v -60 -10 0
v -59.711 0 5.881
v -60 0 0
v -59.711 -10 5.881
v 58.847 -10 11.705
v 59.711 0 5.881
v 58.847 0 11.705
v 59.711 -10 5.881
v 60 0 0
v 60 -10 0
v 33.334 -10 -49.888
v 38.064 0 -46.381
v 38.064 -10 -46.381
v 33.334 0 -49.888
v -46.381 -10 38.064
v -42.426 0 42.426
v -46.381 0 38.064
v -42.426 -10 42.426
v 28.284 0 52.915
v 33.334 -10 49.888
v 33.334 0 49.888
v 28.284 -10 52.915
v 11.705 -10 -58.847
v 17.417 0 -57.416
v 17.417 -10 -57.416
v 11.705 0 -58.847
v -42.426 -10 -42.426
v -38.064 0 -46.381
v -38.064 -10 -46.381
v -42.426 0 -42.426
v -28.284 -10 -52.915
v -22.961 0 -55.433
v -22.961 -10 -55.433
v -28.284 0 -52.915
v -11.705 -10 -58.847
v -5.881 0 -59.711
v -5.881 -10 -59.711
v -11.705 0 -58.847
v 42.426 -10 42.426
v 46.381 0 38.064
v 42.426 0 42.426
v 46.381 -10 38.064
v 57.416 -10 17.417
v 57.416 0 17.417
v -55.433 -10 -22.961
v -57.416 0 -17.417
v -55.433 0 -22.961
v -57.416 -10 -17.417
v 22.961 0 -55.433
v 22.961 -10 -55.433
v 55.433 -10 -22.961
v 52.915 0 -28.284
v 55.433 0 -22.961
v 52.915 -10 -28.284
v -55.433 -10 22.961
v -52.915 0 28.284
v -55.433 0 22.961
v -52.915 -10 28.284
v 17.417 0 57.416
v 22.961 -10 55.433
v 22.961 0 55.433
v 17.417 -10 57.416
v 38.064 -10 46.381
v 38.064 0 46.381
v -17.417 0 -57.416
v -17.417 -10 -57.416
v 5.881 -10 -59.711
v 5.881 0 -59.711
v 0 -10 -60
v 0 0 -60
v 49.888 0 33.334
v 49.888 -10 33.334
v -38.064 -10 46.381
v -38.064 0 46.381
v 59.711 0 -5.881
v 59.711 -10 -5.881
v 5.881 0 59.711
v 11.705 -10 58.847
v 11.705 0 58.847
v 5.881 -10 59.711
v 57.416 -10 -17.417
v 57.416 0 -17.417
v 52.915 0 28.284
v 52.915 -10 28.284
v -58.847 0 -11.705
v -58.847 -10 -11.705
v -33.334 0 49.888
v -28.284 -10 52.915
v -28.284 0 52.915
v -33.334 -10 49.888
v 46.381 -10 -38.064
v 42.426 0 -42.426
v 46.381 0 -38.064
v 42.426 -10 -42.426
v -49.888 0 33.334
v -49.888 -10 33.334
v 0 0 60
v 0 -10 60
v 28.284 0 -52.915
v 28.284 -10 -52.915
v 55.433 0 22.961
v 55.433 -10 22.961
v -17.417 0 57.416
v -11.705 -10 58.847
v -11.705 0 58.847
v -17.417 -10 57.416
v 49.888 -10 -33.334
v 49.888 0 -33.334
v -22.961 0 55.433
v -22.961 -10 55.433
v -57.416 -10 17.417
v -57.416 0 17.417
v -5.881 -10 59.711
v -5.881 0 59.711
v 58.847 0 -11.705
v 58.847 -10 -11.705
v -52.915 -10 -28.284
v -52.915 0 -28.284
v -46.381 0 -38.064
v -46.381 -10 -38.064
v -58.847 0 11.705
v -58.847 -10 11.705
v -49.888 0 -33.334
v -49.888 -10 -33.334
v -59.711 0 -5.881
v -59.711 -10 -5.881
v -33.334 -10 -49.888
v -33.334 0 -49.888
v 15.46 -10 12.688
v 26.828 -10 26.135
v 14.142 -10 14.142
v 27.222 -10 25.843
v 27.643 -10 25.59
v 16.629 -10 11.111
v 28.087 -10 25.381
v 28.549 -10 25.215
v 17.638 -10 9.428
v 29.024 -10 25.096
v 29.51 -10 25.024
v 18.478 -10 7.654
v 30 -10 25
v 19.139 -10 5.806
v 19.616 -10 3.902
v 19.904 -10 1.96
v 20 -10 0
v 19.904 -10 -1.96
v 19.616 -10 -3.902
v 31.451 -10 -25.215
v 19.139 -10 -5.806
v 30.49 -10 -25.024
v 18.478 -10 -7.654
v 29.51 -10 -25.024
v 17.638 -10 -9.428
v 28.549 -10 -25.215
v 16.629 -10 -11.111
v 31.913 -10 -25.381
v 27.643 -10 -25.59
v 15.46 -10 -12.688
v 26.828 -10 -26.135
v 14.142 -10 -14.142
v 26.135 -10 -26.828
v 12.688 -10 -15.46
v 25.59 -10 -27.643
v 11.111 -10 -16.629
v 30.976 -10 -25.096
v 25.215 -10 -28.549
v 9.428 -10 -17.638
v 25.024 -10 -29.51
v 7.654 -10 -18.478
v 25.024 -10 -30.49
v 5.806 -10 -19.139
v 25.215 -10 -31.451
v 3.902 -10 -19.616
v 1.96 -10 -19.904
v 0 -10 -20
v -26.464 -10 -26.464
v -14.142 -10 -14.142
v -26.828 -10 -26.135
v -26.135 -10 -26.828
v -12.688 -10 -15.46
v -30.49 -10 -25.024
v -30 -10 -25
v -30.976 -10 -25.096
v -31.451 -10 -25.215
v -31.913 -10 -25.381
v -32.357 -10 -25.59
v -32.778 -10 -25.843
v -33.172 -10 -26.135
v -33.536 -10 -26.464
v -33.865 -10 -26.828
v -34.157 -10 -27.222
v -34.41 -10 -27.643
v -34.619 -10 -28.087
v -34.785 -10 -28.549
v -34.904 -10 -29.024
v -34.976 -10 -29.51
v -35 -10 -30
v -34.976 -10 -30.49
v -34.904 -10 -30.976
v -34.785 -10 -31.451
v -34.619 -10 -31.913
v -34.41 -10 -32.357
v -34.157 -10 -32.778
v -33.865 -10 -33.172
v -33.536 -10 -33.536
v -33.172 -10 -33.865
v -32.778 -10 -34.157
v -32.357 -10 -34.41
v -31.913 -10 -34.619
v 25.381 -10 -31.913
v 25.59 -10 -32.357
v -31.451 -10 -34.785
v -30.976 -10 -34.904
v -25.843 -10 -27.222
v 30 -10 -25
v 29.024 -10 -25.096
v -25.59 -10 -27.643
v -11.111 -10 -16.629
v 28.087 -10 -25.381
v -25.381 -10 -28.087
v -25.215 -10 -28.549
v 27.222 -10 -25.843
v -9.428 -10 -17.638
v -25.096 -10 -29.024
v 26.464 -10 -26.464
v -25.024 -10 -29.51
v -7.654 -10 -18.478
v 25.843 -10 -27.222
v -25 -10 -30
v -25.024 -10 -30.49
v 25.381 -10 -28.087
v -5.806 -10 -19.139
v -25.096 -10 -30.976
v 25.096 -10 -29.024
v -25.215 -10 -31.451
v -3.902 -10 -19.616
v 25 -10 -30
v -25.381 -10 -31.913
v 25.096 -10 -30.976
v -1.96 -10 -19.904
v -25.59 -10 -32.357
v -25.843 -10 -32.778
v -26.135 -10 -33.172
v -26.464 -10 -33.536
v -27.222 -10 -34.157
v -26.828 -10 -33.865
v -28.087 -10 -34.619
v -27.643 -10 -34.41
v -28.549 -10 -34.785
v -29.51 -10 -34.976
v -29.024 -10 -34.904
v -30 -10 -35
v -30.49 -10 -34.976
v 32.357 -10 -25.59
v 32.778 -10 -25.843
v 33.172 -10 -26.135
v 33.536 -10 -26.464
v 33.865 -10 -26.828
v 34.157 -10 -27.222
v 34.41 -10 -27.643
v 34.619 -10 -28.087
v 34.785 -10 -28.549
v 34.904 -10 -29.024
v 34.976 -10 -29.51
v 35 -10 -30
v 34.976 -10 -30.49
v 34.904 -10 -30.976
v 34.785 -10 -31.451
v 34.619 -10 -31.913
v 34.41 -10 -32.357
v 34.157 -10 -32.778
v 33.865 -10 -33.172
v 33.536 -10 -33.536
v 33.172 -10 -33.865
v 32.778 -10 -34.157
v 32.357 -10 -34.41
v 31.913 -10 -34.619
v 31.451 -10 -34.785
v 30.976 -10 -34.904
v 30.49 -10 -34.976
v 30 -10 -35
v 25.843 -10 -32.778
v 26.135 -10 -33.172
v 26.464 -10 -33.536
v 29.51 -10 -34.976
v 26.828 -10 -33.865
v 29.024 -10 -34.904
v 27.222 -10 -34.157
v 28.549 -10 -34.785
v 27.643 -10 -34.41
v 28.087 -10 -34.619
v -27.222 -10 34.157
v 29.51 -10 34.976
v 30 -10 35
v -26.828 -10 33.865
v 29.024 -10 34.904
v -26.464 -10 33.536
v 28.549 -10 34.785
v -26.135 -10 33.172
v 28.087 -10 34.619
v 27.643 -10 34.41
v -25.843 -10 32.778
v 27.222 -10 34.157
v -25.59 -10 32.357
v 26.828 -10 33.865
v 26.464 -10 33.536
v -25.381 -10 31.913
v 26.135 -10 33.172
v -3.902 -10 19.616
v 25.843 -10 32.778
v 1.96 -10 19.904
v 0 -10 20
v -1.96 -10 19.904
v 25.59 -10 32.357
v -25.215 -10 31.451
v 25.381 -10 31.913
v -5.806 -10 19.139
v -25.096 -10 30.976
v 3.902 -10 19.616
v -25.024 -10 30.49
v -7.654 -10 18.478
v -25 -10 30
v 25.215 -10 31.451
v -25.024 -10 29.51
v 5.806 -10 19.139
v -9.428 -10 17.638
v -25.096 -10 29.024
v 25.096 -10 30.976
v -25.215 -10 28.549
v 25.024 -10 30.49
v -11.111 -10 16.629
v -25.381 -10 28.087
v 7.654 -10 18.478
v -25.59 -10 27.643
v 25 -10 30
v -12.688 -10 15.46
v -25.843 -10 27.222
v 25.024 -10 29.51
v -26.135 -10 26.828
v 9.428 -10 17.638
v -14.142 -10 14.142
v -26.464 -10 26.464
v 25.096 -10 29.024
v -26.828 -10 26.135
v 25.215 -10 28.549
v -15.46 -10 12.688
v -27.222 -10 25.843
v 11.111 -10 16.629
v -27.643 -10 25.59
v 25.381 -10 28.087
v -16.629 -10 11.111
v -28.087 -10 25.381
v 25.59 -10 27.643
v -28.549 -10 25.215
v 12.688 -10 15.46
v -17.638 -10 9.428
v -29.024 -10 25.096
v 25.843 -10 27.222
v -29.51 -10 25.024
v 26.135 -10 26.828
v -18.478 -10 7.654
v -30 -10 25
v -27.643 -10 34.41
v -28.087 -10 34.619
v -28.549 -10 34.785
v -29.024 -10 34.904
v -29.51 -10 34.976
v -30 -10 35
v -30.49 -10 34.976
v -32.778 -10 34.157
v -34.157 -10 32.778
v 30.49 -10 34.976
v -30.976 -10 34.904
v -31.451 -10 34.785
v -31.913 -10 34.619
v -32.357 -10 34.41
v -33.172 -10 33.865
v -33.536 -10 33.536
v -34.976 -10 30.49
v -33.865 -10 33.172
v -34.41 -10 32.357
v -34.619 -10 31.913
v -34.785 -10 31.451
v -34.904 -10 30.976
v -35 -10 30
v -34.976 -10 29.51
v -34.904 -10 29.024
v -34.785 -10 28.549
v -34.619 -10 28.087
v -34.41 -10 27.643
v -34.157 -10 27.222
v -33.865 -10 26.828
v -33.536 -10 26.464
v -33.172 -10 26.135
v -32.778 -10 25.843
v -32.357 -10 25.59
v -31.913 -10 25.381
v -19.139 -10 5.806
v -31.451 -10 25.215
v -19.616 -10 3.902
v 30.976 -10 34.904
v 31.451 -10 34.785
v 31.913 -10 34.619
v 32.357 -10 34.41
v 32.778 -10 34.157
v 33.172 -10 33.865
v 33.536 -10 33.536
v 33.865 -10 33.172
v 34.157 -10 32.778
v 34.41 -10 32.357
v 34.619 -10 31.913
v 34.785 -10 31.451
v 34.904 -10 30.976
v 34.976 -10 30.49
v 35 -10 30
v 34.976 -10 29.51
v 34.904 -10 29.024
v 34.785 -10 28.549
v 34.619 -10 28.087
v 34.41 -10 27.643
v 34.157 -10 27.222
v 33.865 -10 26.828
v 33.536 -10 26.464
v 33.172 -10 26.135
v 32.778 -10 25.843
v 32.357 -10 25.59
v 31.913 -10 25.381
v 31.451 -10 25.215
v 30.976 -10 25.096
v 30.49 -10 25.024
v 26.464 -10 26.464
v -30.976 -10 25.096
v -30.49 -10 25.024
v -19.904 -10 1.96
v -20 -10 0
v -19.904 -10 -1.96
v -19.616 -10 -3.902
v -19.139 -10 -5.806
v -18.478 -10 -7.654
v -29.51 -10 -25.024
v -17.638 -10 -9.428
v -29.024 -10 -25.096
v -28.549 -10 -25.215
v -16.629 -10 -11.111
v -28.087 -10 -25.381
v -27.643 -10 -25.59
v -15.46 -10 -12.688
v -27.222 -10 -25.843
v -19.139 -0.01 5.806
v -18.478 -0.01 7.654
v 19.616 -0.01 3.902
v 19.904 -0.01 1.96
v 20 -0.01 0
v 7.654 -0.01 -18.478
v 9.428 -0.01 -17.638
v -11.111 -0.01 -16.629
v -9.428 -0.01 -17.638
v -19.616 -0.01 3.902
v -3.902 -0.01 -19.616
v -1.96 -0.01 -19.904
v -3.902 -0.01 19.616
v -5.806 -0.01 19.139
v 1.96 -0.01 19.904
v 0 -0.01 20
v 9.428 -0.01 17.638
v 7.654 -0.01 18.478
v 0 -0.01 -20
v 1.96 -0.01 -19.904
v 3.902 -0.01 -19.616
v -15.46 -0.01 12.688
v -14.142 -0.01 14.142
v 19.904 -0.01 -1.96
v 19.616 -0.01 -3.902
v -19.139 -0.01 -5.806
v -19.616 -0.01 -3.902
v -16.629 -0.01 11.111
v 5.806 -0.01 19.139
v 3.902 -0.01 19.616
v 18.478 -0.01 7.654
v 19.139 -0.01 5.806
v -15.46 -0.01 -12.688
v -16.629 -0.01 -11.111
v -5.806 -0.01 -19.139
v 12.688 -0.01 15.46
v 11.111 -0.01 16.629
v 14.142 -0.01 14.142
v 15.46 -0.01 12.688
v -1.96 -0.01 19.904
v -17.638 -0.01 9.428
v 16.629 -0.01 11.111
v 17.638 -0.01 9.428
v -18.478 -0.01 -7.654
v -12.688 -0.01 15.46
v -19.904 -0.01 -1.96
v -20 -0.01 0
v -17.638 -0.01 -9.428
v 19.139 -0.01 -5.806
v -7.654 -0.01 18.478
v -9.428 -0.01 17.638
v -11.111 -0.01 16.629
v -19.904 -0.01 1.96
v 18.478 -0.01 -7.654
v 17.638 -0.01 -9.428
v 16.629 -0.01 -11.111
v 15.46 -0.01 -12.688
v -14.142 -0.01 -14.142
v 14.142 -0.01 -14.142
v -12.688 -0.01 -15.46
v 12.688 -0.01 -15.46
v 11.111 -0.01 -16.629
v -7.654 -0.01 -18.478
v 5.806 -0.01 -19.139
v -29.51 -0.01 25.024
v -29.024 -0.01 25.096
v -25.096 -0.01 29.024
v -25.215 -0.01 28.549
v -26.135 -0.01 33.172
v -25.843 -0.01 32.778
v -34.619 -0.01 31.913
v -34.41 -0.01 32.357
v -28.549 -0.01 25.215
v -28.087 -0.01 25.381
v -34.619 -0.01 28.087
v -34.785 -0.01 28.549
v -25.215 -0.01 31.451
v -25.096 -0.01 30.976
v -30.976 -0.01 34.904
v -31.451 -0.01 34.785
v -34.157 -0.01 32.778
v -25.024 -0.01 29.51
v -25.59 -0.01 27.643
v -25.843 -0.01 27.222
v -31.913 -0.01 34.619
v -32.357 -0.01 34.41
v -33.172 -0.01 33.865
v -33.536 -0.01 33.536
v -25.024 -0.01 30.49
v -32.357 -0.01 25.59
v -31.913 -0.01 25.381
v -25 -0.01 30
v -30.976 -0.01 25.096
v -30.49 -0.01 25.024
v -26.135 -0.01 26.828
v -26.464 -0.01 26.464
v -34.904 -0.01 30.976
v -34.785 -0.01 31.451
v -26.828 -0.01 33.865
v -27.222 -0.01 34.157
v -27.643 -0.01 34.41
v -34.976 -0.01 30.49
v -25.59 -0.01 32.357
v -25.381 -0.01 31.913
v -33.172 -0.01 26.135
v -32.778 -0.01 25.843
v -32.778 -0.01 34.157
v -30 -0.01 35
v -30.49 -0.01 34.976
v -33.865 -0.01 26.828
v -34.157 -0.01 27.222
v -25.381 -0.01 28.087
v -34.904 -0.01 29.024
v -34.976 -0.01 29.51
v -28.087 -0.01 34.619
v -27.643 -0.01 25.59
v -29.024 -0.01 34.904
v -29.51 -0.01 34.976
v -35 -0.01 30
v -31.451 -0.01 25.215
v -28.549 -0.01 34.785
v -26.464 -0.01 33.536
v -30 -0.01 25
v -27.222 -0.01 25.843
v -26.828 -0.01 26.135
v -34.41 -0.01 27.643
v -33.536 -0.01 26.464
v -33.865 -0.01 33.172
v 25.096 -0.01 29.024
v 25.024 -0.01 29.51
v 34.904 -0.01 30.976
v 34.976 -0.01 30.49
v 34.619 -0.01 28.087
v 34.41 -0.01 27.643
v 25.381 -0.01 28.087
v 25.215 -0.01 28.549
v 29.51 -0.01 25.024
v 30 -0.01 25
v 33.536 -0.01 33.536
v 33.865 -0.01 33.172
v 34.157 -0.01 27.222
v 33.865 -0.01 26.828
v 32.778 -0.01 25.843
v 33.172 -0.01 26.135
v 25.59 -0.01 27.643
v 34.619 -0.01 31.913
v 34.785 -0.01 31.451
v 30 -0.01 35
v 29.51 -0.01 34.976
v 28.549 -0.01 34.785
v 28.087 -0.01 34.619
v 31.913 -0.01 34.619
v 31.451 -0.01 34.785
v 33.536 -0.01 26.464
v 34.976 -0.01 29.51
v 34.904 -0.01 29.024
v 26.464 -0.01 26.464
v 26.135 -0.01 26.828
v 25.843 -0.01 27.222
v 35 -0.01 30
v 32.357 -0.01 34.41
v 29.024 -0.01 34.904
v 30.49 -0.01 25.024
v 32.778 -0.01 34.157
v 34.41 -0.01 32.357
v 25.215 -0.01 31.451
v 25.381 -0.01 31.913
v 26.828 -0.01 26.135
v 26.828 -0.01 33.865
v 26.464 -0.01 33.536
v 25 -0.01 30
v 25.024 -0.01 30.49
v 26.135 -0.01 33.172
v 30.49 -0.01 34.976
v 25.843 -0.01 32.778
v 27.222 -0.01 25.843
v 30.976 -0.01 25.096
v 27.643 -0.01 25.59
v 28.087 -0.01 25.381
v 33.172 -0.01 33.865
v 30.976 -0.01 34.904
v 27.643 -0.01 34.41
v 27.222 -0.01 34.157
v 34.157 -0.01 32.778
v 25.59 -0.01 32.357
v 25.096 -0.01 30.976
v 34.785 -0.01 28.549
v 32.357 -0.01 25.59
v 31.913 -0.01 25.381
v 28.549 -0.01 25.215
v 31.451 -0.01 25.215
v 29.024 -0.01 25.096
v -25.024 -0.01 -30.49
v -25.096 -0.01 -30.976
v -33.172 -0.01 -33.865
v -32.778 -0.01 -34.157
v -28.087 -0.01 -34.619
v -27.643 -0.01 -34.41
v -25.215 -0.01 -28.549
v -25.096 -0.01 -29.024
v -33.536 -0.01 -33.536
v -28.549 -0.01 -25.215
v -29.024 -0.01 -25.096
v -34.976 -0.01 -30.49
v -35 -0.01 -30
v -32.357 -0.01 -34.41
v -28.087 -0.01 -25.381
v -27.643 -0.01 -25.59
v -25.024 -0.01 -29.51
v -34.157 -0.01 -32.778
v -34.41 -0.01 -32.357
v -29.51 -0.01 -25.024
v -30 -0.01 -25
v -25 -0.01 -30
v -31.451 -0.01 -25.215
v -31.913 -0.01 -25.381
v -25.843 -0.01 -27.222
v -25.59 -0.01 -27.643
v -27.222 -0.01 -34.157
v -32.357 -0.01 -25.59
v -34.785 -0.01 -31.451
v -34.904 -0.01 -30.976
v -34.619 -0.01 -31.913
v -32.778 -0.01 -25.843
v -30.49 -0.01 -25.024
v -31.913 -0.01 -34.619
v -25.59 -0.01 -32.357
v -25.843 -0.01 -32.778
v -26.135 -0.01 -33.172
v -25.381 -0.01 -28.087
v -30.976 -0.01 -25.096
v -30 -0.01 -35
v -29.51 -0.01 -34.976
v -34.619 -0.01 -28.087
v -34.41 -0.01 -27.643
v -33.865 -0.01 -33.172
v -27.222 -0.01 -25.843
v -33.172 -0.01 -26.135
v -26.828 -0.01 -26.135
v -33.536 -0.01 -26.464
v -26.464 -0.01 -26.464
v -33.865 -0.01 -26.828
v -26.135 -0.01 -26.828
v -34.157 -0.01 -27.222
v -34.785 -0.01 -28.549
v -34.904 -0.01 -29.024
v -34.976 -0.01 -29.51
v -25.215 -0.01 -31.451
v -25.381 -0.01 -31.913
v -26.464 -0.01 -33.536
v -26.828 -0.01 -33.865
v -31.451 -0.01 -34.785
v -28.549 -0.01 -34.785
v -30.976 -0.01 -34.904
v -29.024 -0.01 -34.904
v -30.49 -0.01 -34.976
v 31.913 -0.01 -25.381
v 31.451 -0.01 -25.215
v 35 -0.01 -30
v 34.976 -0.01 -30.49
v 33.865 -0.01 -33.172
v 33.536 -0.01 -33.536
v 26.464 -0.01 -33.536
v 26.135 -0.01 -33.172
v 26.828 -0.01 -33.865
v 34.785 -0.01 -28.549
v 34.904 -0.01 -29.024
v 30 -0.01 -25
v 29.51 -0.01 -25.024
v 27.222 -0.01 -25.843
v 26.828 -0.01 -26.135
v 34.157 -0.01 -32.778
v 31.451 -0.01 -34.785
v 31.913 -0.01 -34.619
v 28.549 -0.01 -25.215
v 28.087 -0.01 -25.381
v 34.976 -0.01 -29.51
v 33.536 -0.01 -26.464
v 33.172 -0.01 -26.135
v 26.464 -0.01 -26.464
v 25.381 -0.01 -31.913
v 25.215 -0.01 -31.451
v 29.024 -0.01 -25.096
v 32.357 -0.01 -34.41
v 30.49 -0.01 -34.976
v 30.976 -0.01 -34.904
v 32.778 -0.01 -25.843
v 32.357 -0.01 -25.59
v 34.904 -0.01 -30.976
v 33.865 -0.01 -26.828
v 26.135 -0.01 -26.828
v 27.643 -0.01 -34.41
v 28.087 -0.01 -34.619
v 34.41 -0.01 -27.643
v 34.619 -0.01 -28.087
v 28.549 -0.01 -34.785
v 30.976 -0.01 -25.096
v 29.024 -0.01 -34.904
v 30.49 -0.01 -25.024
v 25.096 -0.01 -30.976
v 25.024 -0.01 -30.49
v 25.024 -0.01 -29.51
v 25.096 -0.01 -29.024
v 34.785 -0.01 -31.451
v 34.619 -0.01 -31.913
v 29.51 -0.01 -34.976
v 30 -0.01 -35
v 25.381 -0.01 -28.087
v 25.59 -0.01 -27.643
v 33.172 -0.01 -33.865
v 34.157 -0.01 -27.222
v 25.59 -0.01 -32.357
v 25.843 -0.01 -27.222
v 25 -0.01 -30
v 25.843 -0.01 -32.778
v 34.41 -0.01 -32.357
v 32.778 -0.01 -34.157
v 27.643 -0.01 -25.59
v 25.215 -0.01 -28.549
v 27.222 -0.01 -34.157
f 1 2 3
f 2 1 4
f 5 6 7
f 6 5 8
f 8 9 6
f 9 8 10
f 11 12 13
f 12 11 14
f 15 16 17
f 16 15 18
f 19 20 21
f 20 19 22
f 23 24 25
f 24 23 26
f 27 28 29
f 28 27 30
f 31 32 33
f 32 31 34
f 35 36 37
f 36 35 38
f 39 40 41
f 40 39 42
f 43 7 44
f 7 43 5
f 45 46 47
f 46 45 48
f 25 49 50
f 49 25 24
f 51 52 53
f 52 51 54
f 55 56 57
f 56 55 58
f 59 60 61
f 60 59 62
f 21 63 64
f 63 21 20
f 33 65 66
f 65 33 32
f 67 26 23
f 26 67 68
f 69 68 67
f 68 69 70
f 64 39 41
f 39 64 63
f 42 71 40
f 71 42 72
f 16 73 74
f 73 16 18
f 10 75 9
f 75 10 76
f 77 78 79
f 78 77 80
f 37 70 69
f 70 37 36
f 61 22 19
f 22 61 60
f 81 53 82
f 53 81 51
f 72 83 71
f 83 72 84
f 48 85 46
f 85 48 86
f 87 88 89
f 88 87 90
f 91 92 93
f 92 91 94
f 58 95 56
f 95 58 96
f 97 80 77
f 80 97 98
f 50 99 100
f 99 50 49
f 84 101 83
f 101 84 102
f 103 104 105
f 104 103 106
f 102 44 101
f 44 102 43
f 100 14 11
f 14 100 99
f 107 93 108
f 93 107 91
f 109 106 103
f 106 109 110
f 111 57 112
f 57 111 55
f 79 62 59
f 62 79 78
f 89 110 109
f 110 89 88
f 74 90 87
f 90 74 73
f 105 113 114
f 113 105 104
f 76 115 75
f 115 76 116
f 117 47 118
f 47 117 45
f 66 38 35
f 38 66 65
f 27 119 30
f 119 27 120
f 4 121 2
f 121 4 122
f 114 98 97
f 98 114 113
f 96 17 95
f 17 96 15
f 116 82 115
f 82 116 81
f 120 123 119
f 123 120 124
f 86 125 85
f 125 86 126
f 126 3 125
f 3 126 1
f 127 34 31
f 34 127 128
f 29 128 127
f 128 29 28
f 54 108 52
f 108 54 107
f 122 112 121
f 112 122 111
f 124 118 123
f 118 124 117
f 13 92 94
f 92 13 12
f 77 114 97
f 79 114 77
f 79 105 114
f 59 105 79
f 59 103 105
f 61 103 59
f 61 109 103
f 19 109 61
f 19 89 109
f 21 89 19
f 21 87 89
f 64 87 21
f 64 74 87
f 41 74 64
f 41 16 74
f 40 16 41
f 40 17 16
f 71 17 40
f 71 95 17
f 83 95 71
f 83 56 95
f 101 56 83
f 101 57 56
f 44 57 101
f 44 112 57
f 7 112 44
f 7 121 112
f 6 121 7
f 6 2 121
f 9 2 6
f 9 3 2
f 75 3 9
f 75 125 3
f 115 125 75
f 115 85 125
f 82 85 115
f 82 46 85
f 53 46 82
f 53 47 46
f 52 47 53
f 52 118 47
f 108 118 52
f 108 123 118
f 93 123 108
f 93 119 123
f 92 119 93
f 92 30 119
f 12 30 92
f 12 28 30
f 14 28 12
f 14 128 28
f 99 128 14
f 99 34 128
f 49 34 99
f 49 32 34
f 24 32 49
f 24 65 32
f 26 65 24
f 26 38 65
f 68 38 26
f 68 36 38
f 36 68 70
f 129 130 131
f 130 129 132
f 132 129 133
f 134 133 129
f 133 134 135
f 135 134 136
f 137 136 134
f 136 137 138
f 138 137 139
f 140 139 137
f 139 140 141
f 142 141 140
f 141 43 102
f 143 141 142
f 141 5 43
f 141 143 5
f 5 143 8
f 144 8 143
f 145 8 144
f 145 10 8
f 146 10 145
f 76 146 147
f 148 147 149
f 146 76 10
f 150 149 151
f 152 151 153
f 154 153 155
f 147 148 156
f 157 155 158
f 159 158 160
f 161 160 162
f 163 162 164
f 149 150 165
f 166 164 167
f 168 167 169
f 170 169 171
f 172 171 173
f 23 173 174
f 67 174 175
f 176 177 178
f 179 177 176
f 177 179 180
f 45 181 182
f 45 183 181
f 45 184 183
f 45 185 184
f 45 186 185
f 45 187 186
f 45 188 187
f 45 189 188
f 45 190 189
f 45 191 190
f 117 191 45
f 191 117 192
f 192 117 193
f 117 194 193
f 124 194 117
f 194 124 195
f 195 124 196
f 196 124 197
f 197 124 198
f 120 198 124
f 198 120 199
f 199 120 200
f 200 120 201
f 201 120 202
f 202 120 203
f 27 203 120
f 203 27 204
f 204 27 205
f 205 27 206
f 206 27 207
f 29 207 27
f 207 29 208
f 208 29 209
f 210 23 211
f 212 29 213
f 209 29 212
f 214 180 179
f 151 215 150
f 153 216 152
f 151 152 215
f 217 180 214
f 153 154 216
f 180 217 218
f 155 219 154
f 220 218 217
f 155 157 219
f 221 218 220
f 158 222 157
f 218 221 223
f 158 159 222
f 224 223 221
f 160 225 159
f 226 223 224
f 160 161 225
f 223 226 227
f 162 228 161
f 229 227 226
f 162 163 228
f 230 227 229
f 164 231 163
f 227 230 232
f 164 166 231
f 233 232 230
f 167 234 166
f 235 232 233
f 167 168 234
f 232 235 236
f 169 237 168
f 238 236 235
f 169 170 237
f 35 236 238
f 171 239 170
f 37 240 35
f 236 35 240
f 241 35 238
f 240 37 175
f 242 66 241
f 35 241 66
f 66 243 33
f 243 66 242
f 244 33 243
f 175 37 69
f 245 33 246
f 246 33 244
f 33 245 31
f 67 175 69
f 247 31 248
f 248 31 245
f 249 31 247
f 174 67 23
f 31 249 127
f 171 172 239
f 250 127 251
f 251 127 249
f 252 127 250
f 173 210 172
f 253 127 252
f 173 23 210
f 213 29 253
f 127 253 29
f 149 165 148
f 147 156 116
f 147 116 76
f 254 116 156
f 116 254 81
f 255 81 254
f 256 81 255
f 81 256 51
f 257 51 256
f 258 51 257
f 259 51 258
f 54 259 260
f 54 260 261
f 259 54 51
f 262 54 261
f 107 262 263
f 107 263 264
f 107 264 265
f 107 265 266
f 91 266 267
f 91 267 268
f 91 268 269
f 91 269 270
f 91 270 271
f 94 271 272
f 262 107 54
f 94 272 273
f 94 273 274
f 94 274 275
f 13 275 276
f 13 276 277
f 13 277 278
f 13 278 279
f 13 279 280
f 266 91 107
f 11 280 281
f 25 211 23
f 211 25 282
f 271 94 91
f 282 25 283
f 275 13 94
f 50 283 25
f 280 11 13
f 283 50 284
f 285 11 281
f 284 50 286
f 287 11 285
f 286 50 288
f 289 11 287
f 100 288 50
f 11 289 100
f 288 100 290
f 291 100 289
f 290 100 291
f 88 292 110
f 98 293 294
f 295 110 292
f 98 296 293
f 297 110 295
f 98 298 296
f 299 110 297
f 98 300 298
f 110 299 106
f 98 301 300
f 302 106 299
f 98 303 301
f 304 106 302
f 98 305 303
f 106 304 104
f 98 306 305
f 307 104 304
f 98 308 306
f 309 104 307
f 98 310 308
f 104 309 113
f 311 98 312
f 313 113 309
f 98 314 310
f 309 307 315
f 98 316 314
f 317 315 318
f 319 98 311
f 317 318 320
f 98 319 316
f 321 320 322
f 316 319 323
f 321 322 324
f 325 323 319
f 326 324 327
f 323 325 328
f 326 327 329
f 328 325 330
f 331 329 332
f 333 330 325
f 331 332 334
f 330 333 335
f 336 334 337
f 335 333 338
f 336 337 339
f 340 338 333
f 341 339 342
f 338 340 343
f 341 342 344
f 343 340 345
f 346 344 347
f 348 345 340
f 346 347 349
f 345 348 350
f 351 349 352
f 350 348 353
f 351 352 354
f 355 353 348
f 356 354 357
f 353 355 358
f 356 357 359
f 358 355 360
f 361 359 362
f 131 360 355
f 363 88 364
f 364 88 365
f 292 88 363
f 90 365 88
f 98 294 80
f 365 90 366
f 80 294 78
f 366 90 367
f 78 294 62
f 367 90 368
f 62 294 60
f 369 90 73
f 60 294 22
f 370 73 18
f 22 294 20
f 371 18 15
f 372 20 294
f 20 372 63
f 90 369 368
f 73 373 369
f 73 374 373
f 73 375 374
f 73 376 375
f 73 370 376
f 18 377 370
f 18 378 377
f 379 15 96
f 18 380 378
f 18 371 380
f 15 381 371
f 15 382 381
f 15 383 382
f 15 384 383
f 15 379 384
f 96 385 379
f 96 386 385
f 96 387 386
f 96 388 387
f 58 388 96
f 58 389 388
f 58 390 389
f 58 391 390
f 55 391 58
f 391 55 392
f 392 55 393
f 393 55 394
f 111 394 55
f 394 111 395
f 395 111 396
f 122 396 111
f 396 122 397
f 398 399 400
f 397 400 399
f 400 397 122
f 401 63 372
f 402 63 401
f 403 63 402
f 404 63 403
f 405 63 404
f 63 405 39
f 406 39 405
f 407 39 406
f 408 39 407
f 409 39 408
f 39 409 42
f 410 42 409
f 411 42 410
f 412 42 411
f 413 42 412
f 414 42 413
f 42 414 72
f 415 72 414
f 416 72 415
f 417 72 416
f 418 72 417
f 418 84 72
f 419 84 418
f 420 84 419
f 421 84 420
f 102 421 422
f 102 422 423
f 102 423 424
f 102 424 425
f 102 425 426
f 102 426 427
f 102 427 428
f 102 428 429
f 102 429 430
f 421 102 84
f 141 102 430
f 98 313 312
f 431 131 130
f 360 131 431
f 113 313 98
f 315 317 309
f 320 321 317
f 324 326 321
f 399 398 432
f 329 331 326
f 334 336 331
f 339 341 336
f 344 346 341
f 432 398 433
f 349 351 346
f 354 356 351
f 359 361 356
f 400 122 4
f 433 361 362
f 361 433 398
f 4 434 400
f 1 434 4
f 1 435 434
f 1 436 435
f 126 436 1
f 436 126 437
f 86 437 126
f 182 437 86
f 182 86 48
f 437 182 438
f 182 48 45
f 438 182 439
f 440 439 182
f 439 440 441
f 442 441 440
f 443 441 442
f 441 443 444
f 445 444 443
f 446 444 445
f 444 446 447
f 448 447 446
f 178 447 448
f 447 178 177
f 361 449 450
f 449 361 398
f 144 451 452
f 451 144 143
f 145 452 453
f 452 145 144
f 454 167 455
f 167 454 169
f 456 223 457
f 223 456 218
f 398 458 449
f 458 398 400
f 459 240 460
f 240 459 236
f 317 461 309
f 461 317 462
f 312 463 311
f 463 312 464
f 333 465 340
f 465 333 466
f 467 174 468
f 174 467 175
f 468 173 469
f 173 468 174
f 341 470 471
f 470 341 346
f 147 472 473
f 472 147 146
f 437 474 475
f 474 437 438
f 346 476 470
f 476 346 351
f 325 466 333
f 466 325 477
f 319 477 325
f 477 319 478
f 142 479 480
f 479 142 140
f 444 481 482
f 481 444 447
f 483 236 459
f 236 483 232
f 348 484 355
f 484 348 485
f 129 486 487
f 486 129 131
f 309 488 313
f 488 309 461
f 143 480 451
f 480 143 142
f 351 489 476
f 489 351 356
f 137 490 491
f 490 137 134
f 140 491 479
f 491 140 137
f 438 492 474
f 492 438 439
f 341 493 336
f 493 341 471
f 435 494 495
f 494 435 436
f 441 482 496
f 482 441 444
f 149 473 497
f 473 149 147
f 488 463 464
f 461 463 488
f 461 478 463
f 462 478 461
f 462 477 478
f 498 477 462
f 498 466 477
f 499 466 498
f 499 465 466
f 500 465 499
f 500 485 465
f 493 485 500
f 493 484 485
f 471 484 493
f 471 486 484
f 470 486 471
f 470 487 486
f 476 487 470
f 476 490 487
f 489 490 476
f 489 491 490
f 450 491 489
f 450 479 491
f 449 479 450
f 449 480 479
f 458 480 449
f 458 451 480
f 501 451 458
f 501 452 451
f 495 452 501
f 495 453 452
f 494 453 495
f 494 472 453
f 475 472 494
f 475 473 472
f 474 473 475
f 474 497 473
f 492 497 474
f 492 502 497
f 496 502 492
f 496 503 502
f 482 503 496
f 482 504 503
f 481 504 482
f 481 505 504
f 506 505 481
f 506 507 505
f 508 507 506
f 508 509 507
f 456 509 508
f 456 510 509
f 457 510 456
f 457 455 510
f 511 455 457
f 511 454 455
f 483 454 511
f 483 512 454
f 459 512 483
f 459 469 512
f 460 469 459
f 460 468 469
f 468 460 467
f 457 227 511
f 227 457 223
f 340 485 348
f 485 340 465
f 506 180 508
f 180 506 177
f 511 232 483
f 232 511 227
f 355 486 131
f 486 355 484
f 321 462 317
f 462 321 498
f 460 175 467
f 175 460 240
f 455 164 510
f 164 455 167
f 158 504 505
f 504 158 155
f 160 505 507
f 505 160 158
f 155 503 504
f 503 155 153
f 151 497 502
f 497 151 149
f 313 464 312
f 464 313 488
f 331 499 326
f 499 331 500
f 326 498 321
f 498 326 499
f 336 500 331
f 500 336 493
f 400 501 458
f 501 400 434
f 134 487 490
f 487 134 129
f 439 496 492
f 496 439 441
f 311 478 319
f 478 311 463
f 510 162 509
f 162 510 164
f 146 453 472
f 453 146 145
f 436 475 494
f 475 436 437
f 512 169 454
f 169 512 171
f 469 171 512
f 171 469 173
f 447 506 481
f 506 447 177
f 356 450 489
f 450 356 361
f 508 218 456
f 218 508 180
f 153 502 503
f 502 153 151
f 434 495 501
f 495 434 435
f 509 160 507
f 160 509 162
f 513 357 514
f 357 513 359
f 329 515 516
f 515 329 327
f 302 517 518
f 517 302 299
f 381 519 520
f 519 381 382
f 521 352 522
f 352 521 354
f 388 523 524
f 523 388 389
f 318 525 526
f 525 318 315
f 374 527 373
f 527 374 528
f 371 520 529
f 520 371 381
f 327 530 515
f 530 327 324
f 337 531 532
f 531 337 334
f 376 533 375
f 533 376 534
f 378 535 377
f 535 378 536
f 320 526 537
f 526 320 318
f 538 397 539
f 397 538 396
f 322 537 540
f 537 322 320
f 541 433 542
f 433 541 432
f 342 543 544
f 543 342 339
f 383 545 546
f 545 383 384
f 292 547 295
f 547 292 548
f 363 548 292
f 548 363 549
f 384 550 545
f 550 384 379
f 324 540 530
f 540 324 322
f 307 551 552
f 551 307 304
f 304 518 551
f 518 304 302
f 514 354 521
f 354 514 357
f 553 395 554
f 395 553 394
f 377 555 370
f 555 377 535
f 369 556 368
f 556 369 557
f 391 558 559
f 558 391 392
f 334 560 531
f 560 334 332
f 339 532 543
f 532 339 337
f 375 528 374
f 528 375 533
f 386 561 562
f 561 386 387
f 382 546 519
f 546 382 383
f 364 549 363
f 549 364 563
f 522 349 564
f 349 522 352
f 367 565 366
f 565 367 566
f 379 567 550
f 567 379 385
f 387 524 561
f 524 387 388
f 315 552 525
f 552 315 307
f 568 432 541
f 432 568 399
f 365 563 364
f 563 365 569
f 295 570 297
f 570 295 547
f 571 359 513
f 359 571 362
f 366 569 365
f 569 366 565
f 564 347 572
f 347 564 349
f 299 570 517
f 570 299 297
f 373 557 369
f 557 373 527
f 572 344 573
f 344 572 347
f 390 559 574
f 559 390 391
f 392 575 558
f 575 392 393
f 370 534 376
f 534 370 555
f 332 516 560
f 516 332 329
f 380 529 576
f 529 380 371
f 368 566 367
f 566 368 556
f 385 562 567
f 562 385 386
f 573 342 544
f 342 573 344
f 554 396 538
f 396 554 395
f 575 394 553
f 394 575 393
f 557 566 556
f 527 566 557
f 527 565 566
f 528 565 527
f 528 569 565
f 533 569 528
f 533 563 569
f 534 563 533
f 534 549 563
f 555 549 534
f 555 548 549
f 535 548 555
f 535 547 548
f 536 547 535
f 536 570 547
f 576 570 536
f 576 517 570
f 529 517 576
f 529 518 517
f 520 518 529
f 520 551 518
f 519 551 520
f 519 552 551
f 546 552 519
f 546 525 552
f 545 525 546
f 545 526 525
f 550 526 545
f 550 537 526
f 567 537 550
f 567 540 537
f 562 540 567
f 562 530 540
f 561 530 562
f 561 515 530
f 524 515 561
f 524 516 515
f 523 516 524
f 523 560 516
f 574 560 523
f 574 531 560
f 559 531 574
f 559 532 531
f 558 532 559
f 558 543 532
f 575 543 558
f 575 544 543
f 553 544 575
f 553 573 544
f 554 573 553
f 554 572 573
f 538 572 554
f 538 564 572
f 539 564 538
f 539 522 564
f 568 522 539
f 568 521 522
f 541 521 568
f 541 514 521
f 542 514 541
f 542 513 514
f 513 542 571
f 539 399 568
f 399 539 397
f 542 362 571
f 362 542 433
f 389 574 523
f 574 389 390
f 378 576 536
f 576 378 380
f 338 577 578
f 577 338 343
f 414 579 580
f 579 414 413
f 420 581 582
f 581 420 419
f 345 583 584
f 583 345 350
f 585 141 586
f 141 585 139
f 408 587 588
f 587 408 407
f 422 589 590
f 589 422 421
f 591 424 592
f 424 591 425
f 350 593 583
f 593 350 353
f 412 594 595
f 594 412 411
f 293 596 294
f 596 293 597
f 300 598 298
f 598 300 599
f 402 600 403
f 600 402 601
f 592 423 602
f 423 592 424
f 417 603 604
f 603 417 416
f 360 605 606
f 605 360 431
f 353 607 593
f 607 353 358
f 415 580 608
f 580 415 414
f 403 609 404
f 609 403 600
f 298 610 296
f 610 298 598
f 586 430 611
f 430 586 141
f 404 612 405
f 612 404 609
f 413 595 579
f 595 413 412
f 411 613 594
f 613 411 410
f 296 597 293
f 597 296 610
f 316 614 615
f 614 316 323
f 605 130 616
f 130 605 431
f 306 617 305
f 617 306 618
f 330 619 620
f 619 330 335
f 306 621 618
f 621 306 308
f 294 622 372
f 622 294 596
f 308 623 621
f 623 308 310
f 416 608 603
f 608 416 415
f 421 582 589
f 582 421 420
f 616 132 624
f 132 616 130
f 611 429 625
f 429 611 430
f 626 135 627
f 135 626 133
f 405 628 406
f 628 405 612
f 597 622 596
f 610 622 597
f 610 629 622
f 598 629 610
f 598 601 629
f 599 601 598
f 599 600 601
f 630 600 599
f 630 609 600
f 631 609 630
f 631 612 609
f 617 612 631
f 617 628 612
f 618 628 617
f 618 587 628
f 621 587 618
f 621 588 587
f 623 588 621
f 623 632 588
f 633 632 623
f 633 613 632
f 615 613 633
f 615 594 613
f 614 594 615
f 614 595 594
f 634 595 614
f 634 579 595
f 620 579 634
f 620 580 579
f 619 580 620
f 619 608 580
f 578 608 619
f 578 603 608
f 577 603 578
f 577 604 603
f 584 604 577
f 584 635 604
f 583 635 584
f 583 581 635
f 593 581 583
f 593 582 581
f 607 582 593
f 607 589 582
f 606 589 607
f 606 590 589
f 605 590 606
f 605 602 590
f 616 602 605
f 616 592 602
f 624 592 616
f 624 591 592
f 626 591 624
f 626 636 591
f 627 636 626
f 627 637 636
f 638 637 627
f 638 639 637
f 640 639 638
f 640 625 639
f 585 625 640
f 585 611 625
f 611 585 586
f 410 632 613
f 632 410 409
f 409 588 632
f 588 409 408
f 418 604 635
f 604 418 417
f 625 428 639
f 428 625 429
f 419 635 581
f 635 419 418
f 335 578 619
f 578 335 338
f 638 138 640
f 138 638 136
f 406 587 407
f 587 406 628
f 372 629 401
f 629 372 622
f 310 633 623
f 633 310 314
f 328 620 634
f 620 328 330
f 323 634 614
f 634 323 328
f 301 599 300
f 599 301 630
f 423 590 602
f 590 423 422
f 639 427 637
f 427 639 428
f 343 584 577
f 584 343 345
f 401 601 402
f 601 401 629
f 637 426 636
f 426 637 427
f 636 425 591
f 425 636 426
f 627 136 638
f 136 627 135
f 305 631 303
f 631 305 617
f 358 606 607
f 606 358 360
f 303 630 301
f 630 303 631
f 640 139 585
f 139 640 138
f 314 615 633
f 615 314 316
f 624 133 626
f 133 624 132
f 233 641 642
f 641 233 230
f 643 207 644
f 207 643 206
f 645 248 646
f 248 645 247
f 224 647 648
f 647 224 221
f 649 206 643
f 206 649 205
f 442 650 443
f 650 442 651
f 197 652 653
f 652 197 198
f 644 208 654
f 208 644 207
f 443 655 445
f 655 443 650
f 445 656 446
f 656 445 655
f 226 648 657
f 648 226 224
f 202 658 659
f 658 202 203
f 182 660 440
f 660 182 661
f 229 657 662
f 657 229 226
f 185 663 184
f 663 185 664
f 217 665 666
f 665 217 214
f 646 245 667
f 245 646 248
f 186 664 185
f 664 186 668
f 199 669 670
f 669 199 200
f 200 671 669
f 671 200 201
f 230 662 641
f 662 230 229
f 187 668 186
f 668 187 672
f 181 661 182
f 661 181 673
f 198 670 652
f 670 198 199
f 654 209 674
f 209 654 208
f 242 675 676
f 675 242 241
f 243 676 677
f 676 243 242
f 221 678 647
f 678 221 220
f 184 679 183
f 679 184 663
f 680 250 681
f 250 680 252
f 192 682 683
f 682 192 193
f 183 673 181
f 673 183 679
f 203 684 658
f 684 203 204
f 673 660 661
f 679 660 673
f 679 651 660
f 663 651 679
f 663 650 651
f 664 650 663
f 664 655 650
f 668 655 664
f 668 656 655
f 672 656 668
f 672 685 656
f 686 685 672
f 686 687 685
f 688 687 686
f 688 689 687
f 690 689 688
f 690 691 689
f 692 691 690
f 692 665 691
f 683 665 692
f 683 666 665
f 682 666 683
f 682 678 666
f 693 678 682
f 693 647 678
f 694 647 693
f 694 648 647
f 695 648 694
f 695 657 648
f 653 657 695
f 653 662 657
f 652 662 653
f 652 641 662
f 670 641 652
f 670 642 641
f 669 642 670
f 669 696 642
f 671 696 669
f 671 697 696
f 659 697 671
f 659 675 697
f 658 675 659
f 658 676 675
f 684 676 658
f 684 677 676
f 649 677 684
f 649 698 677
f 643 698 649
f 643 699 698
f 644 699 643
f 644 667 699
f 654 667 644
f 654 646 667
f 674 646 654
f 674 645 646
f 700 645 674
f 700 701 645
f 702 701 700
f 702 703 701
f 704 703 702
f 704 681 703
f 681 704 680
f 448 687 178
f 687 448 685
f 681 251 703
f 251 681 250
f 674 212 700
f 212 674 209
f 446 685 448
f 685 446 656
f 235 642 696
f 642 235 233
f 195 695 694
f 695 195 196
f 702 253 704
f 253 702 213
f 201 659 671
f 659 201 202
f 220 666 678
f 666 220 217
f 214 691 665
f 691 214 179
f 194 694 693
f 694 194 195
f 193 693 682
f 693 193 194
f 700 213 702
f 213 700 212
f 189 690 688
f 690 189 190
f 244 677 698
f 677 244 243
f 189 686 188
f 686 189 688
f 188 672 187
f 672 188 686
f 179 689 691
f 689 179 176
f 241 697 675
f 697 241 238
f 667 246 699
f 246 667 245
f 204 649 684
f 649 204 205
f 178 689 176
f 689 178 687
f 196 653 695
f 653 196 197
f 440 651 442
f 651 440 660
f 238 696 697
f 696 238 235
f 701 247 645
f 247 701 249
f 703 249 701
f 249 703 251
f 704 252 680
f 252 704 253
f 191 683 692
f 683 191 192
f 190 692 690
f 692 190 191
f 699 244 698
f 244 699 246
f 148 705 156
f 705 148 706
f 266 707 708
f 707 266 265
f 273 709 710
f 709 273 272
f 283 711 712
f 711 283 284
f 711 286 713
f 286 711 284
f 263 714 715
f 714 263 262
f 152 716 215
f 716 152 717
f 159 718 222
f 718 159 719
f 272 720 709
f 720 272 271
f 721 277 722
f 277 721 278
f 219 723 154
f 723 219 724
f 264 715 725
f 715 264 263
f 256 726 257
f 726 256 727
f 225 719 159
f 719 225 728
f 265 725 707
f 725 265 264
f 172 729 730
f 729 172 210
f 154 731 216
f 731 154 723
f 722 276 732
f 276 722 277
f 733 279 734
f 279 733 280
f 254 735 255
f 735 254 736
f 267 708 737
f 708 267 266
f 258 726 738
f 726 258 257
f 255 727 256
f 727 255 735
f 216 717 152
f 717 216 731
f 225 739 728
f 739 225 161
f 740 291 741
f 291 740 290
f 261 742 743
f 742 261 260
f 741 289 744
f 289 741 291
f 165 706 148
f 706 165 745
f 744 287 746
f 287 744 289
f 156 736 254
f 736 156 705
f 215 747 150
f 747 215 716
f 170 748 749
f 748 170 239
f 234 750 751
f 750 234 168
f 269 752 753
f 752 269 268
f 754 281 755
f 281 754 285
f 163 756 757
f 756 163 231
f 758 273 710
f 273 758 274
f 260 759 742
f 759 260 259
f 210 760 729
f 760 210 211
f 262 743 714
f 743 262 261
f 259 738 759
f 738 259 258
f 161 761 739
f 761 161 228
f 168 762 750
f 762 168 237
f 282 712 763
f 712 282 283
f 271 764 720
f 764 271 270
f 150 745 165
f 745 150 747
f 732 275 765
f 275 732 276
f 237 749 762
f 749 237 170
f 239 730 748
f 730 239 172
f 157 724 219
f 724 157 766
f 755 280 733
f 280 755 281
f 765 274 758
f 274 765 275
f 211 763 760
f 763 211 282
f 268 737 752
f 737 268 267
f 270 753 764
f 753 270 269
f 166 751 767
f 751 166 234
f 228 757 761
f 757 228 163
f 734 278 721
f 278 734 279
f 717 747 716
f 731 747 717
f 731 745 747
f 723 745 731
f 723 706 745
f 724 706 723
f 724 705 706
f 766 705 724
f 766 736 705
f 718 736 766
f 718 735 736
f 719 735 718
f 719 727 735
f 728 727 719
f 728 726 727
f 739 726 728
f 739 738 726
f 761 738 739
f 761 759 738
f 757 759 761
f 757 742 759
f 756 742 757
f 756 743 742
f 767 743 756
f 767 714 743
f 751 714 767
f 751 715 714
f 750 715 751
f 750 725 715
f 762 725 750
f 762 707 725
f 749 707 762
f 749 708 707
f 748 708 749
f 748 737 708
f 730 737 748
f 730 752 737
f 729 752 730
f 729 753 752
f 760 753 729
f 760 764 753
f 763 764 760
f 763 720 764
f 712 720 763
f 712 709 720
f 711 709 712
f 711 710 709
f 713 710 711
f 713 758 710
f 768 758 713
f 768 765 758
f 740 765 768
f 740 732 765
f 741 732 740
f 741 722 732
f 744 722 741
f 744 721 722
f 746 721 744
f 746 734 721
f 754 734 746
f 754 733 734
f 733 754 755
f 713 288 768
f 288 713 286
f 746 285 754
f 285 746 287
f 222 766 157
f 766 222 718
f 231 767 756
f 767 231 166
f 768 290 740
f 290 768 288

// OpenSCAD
/* doodle-meta {"version":1,"parameters":{"outer_diameter":{"label":"Outer Diameter","description":"Diameter of the flange body","unit":"mm","feature":"body_diameter"},"thickness":{"label":"Thickness","description":"Height of the flange plate","unit":"mm","feature":"body_thickness"},"bore_diameter":{"label":"Center Bore Diameter","description":"Diameter of the central through-hole","unit":"mm","feature":"center_bore"},"bolt_hole_diameter":{"label":"Bolt Hole Diameter","description":"Diameter of the four bolt holes","unit":"mm","feature":"bolt_holes"},"bolt_circle_diameter":{"label":"Bolt Circle Diameter","description":"Diameter of the circle on which bolt holes are centered","unit":"mm","feature":"bolt_holes"}},"features":{"body_diameter":{"kind":"dimension","axis":"x","label":"Outer Diameter"},"body_thickness":{"kind":"dimension","axis":"y","label":"Thickness"},"center_bore":{"kind":"region","label":"Center Bore","min":[-20,0,-20],"max":[20,10,20]},"bolt_holes":{"kind":"region","label":"Bolt Holes","min":[-42.5,0,-42.5],"max":[42.5,10,42.5]}}} */

// Parameters
outer_diameter = 120;
thickness = 10;
bore_diameter = 40;
bolt_hole_diameter = 10;
bolt_circle_diameter = 85;

// Derived constants
$fn = 64;
eps = 0.01;

// Bolt hole offset from center (half of bolt circle diameter projected to XZ)
// For 4 holes at 45-degree positions on bolt circle: offset = bolt_circle_diameter/2 * cos(45) = bolt_circle_diameter/2 * 0.7071
// But spec says positions are at (±30, ±30), so we use that directly
bolt_offset = 30;

// Main module
module flange() {
    difference() {
        // Base body: Cylinder oriented along Y-axis
        // Positioned so back is at Y=0, front at Y=thickness
        // Centered in X and Z
        translate([0, 0, 0])
            rotate([90, 0, 0])
                cylinder(d=outer_diameter, h=thickness, center=false);
        
        // Center Bore - through cut along Y
        translate([0, -eps, 0])
            rotate([90, 0, 0])
                cylinder(d=bore_diameter, h=thickness + 2*eps, center=false);
        
        // Bolt Holes - 4 holes at (±30, ±30) in XZ plane, cut along Y
        // Hole 1: (-30, 30) in XZ
        translate([-bolt_offset, -eps, bolt_offset])
            rotate([90, 0, 0])
                cylinder(d=bolt_hole_diameter, h=thickness + 2*eps, center=false);
        
        // Hole 2: (30, 30) in XZ
        translate([bolt_offset, -eps, bolt_offset])
            rotate([90, 0, 0])
                cylinder(d=bolt_hole_diameter, h=thickness + 2*eps, center=false);
        
        // Hole 3: (-30, -30) in XZ
        translate([-bolt_offset, -eps, -bolt_offset])
            rotate([90, 0, 0])
                cylinder(d=bolt_hole_diameter, h=thickness + 2*eps, center=false);
        
        // Hole 4: (30, -30) in XZ
        translate([bolt_offset, -eps, -bolt_offset])
            rotate([90, 0, 0])
                cylinder(d=bolt_hole_diameter, h=thickness + 2*eps, center=false);
    }
}

// Instantiate
flange();
